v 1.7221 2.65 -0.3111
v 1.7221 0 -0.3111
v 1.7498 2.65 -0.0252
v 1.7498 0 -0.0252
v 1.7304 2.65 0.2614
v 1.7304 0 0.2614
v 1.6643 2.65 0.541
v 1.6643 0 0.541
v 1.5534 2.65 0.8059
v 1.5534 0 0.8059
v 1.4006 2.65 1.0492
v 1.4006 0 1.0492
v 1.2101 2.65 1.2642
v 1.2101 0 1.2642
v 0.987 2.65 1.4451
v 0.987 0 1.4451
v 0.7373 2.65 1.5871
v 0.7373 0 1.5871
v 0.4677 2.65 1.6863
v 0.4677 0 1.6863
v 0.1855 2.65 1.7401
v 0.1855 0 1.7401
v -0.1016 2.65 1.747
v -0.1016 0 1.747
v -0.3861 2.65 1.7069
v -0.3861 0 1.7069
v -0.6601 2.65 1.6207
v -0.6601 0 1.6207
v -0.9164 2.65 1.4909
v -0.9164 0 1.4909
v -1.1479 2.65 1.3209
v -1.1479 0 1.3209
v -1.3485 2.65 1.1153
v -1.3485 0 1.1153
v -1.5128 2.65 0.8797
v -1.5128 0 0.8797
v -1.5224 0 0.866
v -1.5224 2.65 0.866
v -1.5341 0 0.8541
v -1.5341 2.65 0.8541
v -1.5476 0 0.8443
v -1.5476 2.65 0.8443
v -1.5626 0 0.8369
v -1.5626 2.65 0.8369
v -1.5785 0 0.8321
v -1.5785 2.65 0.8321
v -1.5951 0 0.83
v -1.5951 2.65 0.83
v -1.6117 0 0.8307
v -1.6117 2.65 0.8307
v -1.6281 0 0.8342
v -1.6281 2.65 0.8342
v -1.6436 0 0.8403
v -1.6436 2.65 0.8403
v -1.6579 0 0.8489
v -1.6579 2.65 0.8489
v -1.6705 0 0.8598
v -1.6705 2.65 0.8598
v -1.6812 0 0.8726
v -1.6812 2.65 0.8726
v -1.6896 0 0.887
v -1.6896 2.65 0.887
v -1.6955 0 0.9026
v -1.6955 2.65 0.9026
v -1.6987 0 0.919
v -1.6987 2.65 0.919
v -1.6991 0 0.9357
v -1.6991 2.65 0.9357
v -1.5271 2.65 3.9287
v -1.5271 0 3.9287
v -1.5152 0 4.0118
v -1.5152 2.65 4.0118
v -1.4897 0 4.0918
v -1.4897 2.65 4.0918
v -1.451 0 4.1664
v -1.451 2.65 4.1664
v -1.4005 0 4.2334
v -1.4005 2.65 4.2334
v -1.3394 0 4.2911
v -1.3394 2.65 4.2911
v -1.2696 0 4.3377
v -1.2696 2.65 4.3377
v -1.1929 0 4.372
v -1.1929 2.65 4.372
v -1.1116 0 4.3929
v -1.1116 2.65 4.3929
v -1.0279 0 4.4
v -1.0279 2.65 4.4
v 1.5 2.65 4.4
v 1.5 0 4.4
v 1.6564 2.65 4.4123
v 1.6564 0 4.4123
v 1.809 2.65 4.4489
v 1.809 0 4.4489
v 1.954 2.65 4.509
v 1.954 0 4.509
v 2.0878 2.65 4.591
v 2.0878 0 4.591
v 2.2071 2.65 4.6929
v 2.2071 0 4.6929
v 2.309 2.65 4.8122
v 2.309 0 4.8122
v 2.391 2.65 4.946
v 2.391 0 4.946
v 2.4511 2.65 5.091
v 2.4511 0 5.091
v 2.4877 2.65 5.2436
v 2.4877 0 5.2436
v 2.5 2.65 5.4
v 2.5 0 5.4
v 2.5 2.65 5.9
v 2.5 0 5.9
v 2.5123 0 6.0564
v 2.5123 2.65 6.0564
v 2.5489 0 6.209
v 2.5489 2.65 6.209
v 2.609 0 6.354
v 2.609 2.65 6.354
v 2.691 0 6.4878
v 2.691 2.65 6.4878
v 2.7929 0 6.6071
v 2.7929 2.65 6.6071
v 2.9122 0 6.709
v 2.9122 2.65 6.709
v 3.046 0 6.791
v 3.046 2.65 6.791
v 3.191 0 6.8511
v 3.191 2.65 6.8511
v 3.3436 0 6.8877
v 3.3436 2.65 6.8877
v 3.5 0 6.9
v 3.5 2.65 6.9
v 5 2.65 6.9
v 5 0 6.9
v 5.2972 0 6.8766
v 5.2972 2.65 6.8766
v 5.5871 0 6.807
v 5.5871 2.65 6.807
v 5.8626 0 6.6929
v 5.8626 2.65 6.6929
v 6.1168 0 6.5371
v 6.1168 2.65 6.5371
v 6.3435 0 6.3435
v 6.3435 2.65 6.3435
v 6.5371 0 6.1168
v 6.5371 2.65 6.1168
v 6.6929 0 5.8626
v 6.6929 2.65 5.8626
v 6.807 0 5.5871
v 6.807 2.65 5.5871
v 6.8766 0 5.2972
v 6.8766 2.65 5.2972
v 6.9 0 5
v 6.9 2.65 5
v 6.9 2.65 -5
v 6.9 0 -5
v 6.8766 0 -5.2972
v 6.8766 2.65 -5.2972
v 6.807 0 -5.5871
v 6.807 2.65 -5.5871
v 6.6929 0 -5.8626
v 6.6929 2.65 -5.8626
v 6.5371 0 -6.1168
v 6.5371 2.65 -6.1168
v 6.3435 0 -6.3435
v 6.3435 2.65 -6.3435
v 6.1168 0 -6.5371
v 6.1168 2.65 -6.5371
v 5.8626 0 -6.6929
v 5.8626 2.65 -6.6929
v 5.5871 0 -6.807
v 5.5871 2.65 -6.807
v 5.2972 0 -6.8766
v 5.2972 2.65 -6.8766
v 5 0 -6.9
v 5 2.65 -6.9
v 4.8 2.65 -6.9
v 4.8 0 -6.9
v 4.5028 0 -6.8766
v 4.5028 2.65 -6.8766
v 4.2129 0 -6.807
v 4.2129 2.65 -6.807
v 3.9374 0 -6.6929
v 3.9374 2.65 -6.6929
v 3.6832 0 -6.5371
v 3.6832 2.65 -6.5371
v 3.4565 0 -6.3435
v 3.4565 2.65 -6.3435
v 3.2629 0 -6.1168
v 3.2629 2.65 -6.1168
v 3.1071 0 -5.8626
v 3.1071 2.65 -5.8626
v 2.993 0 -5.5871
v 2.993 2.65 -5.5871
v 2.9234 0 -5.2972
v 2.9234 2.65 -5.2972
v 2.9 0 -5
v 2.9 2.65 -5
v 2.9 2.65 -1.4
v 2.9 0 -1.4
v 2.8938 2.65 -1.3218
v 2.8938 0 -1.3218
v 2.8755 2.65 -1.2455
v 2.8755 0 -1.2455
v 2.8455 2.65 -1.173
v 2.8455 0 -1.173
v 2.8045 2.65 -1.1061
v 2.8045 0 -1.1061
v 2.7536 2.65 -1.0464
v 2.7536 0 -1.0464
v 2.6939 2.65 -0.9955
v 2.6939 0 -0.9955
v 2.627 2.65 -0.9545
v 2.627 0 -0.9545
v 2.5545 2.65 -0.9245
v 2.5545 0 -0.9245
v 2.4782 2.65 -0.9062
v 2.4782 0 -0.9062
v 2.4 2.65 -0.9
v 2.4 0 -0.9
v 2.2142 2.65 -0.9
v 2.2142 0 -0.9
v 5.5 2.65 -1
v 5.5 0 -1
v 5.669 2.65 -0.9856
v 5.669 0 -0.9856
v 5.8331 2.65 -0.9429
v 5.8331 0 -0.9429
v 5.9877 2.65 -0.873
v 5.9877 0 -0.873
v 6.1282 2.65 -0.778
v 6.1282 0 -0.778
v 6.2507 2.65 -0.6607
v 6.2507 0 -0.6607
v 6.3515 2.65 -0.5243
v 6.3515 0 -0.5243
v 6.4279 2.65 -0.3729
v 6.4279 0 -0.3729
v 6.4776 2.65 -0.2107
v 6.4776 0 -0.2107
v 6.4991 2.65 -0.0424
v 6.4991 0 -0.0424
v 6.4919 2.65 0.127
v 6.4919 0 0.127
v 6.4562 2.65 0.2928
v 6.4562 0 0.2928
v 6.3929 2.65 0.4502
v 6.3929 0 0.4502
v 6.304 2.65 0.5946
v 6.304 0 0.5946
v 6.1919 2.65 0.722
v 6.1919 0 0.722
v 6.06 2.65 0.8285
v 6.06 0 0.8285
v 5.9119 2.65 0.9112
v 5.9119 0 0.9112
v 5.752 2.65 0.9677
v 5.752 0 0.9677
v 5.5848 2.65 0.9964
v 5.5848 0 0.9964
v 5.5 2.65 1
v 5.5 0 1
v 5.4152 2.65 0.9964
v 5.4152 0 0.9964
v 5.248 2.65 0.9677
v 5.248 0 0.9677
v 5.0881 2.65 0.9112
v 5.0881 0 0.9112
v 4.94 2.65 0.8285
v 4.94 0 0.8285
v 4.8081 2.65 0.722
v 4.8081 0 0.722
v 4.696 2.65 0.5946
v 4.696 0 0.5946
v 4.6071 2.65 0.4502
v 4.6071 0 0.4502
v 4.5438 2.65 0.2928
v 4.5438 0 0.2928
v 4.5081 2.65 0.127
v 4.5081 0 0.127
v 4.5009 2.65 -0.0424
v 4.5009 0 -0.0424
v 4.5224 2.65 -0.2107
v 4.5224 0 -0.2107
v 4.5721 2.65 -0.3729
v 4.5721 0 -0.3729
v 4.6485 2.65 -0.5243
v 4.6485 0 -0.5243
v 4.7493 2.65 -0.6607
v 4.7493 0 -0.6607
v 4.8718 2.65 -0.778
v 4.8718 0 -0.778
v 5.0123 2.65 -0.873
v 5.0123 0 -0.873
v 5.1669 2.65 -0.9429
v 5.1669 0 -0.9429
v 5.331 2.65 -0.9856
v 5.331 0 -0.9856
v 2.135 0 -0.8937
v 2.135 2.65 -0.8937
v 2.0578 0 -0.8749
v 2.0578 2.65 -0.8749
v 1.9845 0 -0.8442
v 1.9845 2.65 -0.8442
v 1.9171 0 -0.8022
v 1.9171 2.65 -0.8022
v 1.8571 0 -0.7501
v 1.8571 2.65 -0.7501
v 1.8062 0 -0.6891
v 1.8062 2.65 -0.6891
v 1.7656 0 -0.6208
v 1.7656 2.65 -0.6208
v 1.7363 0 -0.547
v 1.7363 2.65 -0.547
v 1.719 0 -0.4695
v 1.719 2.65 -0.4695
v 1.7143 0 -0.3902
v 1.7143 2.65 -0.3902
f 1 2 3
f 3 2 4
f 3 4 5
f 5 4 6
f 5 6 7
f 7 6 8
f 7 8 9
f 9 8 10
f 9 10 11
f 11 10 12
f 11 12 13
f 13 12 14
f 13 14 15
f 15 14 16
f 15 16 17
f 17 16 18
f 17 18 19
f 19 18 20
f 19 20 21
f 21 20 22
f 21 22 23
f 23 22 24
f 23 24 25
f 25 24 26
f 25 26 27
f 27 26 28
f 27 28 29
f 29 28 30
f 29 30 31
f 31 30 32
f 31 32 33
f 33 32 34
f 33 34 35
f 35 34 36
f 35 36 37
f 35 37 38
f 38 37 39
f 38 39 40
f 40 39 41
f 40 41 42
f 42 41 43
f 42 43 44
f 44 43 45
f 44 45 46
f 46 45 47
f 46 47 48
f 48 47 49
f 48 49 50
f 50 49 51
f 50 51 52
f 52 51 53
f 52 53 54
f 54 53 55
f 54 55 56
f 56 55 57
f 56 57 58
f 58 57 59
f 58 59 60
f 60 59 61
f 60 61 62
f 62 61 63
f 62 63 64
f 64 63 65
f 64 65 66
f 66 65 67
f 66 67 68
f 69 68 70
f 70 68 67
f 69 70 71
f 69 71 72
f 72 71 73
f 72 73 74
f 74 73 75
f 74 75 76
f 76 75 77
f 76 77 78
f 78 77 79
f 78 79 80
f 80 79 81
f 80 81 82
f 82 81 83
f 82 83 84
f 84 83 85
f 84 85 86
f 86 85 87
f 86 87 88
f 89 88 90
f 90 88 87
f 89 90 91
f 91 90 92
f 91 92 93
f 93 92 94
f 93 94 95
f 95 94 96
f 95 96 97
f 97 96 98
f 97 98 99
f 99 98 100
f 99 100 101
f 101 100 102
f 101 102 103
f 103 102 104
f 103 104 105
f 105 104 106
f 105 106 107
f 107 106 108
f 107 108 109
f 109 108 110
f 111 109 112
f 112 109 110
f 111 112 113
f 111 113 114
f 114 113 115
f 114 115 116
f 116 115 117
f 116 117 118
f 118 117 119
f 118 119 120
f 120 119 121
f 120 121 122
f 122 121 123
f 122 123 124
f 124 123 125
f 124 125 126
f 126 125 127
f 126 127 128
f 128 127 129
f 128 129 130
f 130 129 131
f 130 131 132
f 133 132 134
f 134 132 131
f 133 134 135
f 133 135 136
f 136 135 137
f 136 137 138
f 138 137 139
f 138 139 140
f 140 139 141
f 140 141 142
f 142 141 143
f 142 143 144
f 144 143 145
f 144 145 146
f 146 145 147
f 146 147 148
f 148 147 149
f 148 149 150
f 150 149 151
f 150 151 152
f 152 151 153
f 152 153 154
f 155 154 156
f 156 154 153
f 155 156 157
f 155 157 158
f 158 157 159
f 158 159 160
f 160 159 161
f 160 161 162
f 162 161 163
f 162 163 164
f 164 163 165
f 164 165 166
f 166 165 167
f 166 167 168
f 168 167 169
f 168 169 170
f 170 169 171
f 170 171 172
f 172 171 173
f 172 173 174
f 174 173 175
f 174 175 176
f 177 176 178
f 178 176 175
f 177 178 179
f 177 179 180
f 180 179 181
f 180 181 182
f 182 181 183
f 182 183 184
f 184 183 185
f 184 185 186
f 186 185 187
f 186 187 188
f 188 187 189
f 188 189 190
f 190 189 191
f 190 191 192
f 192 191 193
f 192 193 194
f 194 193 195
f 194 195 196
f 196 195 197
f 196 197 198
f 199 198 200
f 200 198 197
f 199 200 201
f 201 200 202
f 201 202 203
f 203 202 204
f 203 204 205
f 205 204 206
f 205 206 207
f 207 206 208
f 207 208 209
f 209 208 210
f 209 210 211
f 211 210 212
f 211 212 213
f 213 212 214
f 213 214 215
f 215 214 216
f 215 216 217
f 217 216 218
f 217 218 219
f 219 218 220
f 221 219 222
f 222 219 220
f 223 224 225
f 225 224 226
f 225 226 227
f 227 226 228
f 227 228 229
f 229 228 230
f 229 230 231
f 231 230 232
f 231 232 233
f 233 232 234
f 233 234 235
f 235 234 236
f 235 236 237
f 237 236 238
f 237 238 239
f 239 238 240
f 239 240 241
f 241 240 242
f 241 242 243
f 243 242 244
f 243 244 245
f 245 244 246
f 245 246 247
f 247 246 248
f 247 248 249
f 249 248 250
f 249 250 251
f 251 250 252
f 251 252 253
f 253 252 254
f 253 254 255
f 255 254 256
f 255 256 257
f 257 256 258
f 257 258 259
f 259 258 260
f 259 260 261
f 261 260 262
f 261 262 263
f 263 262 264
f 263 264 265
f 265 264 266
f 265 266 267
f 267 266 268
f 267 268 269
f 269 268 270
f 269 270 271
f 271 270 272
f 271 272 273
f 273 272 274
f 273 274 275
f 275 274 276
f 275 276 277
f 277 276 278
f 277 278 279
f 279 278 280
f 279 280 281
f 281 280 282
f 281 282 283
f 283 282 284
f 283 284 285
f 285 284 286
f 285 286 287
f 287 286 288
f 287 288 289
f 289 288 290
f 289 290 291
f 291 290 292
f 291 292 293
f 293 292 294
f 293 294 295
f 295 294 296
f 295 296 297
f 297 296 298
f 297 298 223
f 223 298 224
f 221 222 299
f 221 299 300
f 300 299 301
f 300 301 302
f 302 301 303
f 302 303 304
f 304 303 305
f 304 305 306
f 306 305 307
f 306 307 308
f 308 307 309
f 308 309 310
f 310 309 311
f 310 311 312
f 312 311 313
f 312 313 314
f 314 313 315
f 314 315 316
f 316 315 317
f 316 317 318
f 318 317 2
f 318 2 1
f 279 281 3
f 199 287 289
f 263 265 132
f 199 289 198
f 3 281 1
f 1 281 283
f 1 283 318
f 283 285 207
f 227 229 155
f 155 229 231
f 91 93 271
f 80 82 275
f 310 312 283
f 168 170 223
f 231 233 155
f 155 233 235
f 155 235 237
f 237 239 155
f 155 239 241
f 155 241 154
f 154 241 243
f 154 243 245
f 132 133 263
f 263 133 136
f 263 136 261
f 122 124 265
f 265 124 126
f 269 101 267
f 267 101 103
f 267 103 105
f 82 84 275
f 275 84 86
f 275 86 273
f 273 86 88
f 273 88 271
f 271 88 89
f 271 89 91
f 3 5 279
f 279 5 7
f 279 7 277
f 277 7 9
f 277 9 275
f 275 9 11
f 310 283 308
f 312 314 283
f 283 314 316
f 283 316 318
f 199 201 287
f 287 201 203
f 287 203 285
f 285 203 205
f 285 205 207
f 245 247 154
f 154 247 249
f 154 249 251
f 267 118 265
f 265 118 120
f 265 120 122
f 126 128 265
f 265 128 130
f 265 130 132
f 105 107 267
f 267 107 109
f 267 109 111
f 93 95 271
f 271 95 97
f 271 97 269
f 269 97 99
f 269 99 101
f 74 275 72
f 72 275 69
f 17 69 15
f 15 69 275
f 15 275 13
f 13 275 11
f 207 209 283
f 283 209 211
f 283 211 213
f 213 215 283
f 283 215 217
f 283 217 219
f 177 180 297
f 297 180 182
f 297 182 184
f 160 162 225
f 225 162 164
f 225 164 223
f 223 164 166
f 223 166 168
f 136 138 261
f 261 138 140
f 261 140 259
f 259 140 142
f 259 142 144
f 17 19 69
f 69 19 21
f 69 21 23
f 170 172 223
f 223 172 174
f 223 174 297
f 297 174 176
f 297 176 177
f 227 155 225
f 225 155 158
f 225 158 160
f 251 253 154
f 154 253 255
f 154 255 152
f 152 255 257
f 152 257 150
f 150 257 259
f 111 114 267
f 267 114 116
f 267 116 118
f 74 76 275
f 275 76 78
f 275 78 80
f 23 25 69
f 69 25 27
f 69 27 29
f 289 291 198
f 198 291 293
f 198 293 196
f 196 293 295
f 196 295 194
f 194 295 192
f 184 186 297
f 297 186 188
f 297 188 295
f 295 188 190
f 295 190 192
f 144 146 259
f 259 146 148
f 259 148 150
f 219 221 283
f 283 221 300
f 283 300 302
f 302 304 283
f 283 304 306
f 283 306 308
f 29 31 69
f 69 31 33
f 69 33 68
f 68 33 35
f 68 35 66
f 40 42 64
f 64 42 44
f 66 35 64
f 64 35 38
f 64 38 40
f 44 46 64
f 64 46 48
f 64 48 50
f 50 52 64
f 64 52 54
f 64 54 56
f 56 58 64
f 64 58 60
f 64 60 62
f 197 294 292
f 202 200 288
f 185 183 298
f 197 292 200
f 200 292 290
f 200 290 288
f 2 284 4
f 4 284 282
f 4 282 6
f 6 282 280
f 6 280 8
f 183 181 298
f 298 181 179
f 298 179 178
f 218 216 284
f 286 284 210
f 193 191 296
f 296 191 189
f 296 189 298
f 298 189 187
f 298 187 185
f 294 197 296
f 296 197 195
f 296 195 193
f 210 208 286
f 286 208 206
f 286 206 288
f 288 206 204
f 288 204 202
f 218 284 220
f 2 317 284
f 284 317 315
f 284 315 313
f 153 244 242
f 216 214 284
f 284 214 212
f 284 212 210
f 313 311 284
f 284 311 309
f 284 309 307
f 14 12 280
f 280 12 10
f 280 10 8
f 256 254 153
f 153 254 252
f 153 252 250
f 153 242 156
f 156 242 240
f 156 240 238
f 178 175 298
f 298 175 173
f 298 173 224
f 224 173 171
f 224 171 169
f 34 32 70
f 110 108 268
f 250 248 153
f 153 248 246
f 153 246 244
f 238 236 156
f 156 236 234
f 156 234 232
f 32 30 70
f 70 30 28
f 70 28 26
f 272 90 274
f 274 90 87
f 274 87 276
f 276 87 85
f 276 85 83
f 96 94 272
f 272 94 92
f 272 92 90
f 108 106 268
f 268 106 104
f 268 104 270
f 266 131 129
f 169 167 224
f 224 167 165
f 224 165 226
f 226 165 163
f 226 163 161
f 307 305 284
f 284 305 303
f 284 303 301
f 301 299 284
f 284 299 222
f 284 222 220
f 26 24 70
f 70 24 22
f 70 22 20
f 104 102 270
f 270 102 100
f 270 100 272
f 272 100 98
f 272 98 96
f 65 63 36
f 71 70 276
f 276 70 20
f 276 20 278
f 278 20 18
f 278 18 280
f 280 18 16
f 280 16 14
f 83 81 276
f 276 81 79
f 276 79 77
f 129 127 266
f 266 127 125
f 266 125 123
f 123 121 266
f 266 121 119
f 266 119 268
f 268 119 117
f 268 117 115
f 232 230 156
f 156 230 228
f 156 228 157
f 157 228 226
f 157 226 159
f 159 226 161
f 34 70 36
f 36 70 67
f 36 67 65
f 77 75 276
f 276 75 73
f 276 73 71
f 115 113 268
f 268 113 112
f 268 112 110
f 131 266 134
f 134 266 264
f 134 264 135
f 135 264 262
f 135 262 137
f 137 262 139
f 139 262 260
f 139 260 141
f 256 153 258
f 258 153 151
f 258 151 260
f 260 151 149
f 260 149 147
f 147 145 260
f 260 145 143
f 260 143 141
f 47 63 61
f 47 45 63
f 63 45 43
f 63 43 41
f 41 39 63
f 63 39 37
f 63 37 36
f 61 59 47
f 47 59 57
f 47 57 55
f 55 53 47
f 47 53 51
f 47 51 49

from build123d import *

# Parameters (mm, degrees)
SKETCH1_R           = 1
BOSS_EXTRUDE1_DEPTH = 2.65


with BuildPart() as part:
    # Sketch1 → Boss-Extrude1 (new body)
    with BuildSketch(Plane(origin=(0, 0, 0), x_dir=(1, 0, 0), z_dir=(0, 1, 0))):
        with BuildLine():
            ThreePointArc((4.8, 6.9), (3.456497116, 6.343502884), (2.9, 5))
            Line((2.9, 5), (2.9, 1.4))
            ThreePointArc((2.9, 1.4), (2.753553391, 1.046446609), (2.4, 0.9))
            Line((2.4, 0.9), (2.214158983, 0.9))
            ThreePointArc((2.214158983, 0.9), (1.830463501, 0.720589734), (1.722123653, 0.311111111))
            ThreePointArc((1.722123653, 0.311111111), (0.604527333, -1.642268767), (-1.512826812, -0.879690308))
            ThreePointArc((-1.512826812, -0.879690308), (-1.628066031, -0.834192871), (-1.6991093, -0.935696311))
            Line((-1.6991093, -0.935696311), (-1.527088335, -3.928689929))
            ThreePointArc((-1.527088335, -3.928689929), (-1.371172257, -4.263555336), (-1.027912125, -4.4))
            Line((-1.027912125, -4.4), (1.5, -4.4))
            ThreePointArc((1.5, -4.4), (2.207106781, -4.692893219), (2.5, -5.4))
            Line((2.5, -5.4), (2.5, -5.9))
            ThreePointArc((2.5, -5.9), (2.792893219, -6.607106781), (3.5, -6.9))
            Line((3.5, -6.9), (5, -6.9))
            ThreePointArc((5, -6.9), (6.343502884, -6.343502884), (6.9, -5))
            Line((6.9, -5), (6.9, 5))
            ThreePointArc((6.9, 5), (6.343502884, 6.343502884), (5, 6.9))
            Line((5, 6.9), (4.8, 6.9))
        make_face()
        with Locations((5.5, 0)):
            Circle(SKETCH1_R, mode=Mode.SUBTRACT)
    extrude(amount=BOSS_EXTRUDE1_DEPTH)


solid = part.part
